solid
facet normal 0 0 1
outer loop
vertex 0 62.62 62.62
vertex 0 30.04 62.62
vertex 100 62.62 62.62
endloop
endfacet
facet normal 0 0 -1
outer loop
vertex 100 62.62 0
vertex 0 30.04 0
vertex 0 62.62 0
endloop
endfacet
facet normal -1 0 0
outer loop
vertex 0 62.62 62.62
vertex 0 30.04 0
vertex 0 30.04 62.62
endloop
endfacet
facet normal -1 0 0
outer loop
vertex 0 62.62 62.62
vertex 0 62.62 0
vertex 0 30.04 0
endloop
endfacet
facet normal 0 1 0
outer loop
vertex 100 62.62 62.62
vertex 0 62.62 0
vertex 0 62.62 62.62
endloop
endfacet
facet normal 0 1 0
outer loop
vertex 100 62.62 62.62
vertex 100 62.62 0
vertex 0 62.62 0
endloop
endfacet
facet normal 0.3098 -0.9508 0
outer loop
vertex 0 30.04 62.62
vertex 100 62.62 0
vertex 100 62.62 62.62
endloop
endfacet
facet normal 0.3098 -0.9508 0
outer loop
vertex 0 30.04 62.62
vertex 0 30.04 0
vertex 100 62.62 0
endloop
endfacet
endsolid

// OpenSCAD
/* doodle-meta {"version":1,"parameters":{"width":{"label":"Overall width","description":"Changes the body width along X","unit":"mm","feature":"body_width"},"depth":{"label":"Overall depth","description":"Changes the body depth along Y","unit":"mm","feature":"body_depth"},"height":{"label":"Overall height","description":"Changes the wedge height along Z","unit":"mm","feature":"body_height"}},"features":{"body_width":{"kind":"dimension","axis":"x","label":"Overall width"},"body_depth":{"kind":"dimension","axis":"y","label":"Overall depth"},"body_height":{"kind":"dimension","axis":"z","label":"Overall height"}}} */

// Top-level parameters (user-editable)
width = 100.0;
depth = 62.62;
height = 32.58;

// Derived constants (not editable)
eps = 0.01;

// Module for the wedge body
module wedge_body() {
    // The wedge is defined by a triangular profile in the XZ plane, extruded along Y.
    // Front view (XZ): Right-angled triangle.
    // Based on the front view polygon:
    // Points in normalized view coords (u, v):
    // (0.0163, 0.0392) -> Top-Left (High Back)
    // (0.0199, 0.9225) -> Bottom-Left (Low Front/Back base)
    // (0.9819, 0.9279) -> Bottom-Right (Low Front/Back base)
    
    // Mapping to CAD (X, Z):
    // u -> X (0 to width)
    // v -> Z (1 to 0, since v=0 is top/high Z, v=1 is bottom/low Z)
    
    // Vertex 1 (Top-Left): u~0, v~0.04 -> X~0, Z~height*(1-0.04) ~ height
    // Vertex 2 (Bottom-Left): u~0, v~0.92 -> X~0, Z~height*(1-0.92) ~ 0
    // Vertex 3 (Bottom-Right): u~1, v~0.93 -> X~width, Z~height*(1-0.93) ~ 0
    
    // This creates a triangle with:
    // - Vertical edge at X=0 (Back Wall) from Z=0 to Z=height
    // - Horizontal edge at Z=0 (Base) from X=0 to X=width
    // - Sloped edge from (0, height) to (width, 0) (Ramp Surface)
    
    // Note: The "Back" is at X=0, "Front" is at X=width.
    // The ramp slopes down from Back (X=0) to Front (X=width).
    
    polygon([
        [0, 0],          // Bottom-Left (Back-Bottom)
        [width, 0],      // Bottom-Right (Front-Bottom)
        [0, height]      // Top-Left (Back-Top)
    ]);
}

// Main design instantiation
// Extrude the triangular profile along the Y-axis (depth)
// The profile is in XZ, so we rotate it to lie in XY for linear_extrude, 
// or use rotate_extrude? No, linear_extrude extrudes along Z by default.
// To extrude along Y, we can rotate the profile 90 degrees around X, 
// then extrude along Z, then rotate back? 
// Simpler: Define polygon in XY plane directly? 
// The polygon function takes 2D points. If we define points as (x, y) and extrude along Z, 
// we get a prism along Z. 
// We want a prism along Y. 
// Strategy: 
// 1. Create the triangle in the XZ plane (as defined above).
// 2. Rotate it -90 degrees around X so it lies in XY plane? 
//    Original: (x, z). Rotate -90 about X: (x, -z, 0) -> (x, 0, -z)? No.
//    Let's just define the polygon in the XY plane such that extrusion along Z creates the shape?
//    No, the shape is constant along Y. 
//    So we define the cross-section in XZ, and extrude along Y.
//    linear_extrude extrudes along Z. 
//    So we need to rotate the object so the extrusion direction aligns with Z.
//    If we rotate the final object 90 degrees around X, the Y-axis becomes Z-axis.
//    So: 
//    1. Define polygon in XZ (x, z).
//    2. linear_extrude(height=depth) -> creates prism along Z.
//    3. Rotate -90 around X -> Y becomes Z? 
//       Rotation -90 about X: Y -> -Z, Z -> Y.
//       So extrusion along Z becomes extrusion along Y.
//       The XZ plane (where polygon was) becomes XY plane? 
//       Point (x, 0, z) -> (x, -z, 0)? No.
//       Let's stick to standard: 
//       Define polygon in XY. Extrude along Z. 
//       We want the triangle in XZ. 
//       So define polygon in XY where Y represents Z? 
//       Polygon points: (x, z). 
//       linear_extrude(height=depth) along Z. 
//       This creates a prism with cross-section in XY (where Y is actually Z) and length along Z (which is actually Y).
//       Then rotate -90 about X to align axes correctly.
//       Original: X=width, Y=height (in polygon), Z=depth (extrusion).
//       Rotate -90 about X: 
//       X stays X.
//       Y (height) -> -Z.
//       Z (depth) -> Y.
//       So we get X=width, Y=depth, Z=-height.
//       Translate Z by height to sit on plate.

// Let's refine the polygon definition for linear_extrude along Z.
// We want the final shape to have:
// X: 0 to width
// Y: 0 to depth
// Z: 0 to height (at X=0), 0 (at X=width)

// If we define polygon in XY plane:
// Points (x, y_poly). 
// Extrude along Z (which will become Y after rotation).
// So y_poly corresponds to the height dimension? No.
// Let's use the rotation method carefully.

// Step 1: Define triangle in XZ plane (x, z).
// Points: (0,0), (width,0), (0,height).
// Step 2: linear_extrude(height=depth). 
// This creates a solid with:
// X: 0..width
// Y: 0..depth (extrusion direction)
// Z: 0..height (from polygon y-coord? No, polygon is 2D (x,y). 
// If I pass (x, z) to polygon(), it treats them as (x, y).
// So the "height" of the triangle in the polygon is along the Y-axis of the polygon space.
// Extrusion is along Z.
// So the solid is:
// X: 0..width
// Y: 0..height (from polygon)
// Z: 0..depth (from extrusion)
// This is a wedge lying on its side. 
// We want:
// X: 0..width
// Y: 0..depth
// Z: 0..height

// So we need to swap Y and Z.
// Rotate 90 degrees around X? 
// Rotation 90 about X: Y -> Z, Z -> -Y.
// So Y(height) -> Z(height). Z(depth) -> -Y(depth).
// This gives Z=height, Y=-depth.
// Translate Y by depth to move to 0..depth.

// Let's verify the triangle orientation.
// Polygon: (0,0), (width,0), (0,height).
// In polygon space (X, Y_poly):
// (0,0) is bottom-left.
// (width,0) is bottom-right.
// (0,height) is top-left.
// This forms a triangle with vertical edge at X=0, horizontal at Y_poly=0.
// After extrusion along Z (which becomes -Y after rotation):
// The "vertical" edge of the triangle (along Y_poly) becomes the vertical edge along Z.
// The "horizontal" edge (along X) stays along X.
// The hypotenuse connects (0, height) to (width, 0).
// So at X=0, Z goes from 0 to height.
// At X=width, Z is 0.
// This matches the requirement: High at Back (X=0), Low at Front (X=width).

// Final transformation:
// 1. linear_extrude(height=depth)
// 2. rotate([90, 0, 0]) -> Y becomes Z, Z becomes -Y.
//    Original Y (0..height) -> Z (0..height).
//    Original Z (0..depth) -> Y (-depth..0).
// 3. translate([0, depth, 0]) -> Y becomes (0..depth).

// Check "Back Wall" at X=0.
// At X=0, the polygon has points (0,0) and (0,height).
// This edge is along the Y_poly axis.
// After rotation, this edge is along the Z axis.
// So the back wall is vertical at X=0. Correct.

// Check "Base" at Z=0.
// The polygon has edge (0,0) to (width,0) along X axis.
// After rotation, this edge is at Z=0 (since Y_poly=0 -> Z=0).
// So the base is flat on the build plate. Correct.

// Check "Ramp".
// Connects (0, height) to (width, 0) in polygon space.
// After rotation, connects (0, 0, height) to (width, 0, 0) in CAD space?
// Wait, Y_poly=height -> Z=height. Y_poly=0 -> Z=0.
// So (0, height) in poly -> (0, ?, height) in CAD.
// (width, 0) in poly -> (width, ?, 0) in CAD.
// The Y coordinate comes from the extrusion direction (original Z).
// So the ramp surface is defined by the line in XZ plane, extruded along Y.
// This is correct.

// One detail: The front view shows the triangle.
// The "Back" is the vertical edge.
// In the front view (looking down Y), we see the XZ plane.
// The vertical edge is at X=0.
// The sloped edge goes from (0, height) to (width, 0).
// This matches the polygon definition.

// Construct the object
rotate([90, 0, 0])
translate([0, 0, -depth]) // Adjust to ensure Y starts at 0 after rotation?
// Let's re-evaluate the rotation and translation.
// linear_extrude creates geometry in Z: 0 to depth.
// rotate([90,0,0]):
// (x, y, z) -> (x, -z, y)
// So Z (0..depth) -> Y (-depth..0).
// Y (0..height) -> Z (0..height).
// So we have Y in [-depth, 0].
// We want Y in [0, depth].
// So translate([0, depth, 0]).

// Let's combine:
translate([0, depth, 0])
rotate([90, 0, 0])
linear_extrude(height=depth)
polygon([
    [0, 0],
    [width, 0],
    [0, height]
]);
